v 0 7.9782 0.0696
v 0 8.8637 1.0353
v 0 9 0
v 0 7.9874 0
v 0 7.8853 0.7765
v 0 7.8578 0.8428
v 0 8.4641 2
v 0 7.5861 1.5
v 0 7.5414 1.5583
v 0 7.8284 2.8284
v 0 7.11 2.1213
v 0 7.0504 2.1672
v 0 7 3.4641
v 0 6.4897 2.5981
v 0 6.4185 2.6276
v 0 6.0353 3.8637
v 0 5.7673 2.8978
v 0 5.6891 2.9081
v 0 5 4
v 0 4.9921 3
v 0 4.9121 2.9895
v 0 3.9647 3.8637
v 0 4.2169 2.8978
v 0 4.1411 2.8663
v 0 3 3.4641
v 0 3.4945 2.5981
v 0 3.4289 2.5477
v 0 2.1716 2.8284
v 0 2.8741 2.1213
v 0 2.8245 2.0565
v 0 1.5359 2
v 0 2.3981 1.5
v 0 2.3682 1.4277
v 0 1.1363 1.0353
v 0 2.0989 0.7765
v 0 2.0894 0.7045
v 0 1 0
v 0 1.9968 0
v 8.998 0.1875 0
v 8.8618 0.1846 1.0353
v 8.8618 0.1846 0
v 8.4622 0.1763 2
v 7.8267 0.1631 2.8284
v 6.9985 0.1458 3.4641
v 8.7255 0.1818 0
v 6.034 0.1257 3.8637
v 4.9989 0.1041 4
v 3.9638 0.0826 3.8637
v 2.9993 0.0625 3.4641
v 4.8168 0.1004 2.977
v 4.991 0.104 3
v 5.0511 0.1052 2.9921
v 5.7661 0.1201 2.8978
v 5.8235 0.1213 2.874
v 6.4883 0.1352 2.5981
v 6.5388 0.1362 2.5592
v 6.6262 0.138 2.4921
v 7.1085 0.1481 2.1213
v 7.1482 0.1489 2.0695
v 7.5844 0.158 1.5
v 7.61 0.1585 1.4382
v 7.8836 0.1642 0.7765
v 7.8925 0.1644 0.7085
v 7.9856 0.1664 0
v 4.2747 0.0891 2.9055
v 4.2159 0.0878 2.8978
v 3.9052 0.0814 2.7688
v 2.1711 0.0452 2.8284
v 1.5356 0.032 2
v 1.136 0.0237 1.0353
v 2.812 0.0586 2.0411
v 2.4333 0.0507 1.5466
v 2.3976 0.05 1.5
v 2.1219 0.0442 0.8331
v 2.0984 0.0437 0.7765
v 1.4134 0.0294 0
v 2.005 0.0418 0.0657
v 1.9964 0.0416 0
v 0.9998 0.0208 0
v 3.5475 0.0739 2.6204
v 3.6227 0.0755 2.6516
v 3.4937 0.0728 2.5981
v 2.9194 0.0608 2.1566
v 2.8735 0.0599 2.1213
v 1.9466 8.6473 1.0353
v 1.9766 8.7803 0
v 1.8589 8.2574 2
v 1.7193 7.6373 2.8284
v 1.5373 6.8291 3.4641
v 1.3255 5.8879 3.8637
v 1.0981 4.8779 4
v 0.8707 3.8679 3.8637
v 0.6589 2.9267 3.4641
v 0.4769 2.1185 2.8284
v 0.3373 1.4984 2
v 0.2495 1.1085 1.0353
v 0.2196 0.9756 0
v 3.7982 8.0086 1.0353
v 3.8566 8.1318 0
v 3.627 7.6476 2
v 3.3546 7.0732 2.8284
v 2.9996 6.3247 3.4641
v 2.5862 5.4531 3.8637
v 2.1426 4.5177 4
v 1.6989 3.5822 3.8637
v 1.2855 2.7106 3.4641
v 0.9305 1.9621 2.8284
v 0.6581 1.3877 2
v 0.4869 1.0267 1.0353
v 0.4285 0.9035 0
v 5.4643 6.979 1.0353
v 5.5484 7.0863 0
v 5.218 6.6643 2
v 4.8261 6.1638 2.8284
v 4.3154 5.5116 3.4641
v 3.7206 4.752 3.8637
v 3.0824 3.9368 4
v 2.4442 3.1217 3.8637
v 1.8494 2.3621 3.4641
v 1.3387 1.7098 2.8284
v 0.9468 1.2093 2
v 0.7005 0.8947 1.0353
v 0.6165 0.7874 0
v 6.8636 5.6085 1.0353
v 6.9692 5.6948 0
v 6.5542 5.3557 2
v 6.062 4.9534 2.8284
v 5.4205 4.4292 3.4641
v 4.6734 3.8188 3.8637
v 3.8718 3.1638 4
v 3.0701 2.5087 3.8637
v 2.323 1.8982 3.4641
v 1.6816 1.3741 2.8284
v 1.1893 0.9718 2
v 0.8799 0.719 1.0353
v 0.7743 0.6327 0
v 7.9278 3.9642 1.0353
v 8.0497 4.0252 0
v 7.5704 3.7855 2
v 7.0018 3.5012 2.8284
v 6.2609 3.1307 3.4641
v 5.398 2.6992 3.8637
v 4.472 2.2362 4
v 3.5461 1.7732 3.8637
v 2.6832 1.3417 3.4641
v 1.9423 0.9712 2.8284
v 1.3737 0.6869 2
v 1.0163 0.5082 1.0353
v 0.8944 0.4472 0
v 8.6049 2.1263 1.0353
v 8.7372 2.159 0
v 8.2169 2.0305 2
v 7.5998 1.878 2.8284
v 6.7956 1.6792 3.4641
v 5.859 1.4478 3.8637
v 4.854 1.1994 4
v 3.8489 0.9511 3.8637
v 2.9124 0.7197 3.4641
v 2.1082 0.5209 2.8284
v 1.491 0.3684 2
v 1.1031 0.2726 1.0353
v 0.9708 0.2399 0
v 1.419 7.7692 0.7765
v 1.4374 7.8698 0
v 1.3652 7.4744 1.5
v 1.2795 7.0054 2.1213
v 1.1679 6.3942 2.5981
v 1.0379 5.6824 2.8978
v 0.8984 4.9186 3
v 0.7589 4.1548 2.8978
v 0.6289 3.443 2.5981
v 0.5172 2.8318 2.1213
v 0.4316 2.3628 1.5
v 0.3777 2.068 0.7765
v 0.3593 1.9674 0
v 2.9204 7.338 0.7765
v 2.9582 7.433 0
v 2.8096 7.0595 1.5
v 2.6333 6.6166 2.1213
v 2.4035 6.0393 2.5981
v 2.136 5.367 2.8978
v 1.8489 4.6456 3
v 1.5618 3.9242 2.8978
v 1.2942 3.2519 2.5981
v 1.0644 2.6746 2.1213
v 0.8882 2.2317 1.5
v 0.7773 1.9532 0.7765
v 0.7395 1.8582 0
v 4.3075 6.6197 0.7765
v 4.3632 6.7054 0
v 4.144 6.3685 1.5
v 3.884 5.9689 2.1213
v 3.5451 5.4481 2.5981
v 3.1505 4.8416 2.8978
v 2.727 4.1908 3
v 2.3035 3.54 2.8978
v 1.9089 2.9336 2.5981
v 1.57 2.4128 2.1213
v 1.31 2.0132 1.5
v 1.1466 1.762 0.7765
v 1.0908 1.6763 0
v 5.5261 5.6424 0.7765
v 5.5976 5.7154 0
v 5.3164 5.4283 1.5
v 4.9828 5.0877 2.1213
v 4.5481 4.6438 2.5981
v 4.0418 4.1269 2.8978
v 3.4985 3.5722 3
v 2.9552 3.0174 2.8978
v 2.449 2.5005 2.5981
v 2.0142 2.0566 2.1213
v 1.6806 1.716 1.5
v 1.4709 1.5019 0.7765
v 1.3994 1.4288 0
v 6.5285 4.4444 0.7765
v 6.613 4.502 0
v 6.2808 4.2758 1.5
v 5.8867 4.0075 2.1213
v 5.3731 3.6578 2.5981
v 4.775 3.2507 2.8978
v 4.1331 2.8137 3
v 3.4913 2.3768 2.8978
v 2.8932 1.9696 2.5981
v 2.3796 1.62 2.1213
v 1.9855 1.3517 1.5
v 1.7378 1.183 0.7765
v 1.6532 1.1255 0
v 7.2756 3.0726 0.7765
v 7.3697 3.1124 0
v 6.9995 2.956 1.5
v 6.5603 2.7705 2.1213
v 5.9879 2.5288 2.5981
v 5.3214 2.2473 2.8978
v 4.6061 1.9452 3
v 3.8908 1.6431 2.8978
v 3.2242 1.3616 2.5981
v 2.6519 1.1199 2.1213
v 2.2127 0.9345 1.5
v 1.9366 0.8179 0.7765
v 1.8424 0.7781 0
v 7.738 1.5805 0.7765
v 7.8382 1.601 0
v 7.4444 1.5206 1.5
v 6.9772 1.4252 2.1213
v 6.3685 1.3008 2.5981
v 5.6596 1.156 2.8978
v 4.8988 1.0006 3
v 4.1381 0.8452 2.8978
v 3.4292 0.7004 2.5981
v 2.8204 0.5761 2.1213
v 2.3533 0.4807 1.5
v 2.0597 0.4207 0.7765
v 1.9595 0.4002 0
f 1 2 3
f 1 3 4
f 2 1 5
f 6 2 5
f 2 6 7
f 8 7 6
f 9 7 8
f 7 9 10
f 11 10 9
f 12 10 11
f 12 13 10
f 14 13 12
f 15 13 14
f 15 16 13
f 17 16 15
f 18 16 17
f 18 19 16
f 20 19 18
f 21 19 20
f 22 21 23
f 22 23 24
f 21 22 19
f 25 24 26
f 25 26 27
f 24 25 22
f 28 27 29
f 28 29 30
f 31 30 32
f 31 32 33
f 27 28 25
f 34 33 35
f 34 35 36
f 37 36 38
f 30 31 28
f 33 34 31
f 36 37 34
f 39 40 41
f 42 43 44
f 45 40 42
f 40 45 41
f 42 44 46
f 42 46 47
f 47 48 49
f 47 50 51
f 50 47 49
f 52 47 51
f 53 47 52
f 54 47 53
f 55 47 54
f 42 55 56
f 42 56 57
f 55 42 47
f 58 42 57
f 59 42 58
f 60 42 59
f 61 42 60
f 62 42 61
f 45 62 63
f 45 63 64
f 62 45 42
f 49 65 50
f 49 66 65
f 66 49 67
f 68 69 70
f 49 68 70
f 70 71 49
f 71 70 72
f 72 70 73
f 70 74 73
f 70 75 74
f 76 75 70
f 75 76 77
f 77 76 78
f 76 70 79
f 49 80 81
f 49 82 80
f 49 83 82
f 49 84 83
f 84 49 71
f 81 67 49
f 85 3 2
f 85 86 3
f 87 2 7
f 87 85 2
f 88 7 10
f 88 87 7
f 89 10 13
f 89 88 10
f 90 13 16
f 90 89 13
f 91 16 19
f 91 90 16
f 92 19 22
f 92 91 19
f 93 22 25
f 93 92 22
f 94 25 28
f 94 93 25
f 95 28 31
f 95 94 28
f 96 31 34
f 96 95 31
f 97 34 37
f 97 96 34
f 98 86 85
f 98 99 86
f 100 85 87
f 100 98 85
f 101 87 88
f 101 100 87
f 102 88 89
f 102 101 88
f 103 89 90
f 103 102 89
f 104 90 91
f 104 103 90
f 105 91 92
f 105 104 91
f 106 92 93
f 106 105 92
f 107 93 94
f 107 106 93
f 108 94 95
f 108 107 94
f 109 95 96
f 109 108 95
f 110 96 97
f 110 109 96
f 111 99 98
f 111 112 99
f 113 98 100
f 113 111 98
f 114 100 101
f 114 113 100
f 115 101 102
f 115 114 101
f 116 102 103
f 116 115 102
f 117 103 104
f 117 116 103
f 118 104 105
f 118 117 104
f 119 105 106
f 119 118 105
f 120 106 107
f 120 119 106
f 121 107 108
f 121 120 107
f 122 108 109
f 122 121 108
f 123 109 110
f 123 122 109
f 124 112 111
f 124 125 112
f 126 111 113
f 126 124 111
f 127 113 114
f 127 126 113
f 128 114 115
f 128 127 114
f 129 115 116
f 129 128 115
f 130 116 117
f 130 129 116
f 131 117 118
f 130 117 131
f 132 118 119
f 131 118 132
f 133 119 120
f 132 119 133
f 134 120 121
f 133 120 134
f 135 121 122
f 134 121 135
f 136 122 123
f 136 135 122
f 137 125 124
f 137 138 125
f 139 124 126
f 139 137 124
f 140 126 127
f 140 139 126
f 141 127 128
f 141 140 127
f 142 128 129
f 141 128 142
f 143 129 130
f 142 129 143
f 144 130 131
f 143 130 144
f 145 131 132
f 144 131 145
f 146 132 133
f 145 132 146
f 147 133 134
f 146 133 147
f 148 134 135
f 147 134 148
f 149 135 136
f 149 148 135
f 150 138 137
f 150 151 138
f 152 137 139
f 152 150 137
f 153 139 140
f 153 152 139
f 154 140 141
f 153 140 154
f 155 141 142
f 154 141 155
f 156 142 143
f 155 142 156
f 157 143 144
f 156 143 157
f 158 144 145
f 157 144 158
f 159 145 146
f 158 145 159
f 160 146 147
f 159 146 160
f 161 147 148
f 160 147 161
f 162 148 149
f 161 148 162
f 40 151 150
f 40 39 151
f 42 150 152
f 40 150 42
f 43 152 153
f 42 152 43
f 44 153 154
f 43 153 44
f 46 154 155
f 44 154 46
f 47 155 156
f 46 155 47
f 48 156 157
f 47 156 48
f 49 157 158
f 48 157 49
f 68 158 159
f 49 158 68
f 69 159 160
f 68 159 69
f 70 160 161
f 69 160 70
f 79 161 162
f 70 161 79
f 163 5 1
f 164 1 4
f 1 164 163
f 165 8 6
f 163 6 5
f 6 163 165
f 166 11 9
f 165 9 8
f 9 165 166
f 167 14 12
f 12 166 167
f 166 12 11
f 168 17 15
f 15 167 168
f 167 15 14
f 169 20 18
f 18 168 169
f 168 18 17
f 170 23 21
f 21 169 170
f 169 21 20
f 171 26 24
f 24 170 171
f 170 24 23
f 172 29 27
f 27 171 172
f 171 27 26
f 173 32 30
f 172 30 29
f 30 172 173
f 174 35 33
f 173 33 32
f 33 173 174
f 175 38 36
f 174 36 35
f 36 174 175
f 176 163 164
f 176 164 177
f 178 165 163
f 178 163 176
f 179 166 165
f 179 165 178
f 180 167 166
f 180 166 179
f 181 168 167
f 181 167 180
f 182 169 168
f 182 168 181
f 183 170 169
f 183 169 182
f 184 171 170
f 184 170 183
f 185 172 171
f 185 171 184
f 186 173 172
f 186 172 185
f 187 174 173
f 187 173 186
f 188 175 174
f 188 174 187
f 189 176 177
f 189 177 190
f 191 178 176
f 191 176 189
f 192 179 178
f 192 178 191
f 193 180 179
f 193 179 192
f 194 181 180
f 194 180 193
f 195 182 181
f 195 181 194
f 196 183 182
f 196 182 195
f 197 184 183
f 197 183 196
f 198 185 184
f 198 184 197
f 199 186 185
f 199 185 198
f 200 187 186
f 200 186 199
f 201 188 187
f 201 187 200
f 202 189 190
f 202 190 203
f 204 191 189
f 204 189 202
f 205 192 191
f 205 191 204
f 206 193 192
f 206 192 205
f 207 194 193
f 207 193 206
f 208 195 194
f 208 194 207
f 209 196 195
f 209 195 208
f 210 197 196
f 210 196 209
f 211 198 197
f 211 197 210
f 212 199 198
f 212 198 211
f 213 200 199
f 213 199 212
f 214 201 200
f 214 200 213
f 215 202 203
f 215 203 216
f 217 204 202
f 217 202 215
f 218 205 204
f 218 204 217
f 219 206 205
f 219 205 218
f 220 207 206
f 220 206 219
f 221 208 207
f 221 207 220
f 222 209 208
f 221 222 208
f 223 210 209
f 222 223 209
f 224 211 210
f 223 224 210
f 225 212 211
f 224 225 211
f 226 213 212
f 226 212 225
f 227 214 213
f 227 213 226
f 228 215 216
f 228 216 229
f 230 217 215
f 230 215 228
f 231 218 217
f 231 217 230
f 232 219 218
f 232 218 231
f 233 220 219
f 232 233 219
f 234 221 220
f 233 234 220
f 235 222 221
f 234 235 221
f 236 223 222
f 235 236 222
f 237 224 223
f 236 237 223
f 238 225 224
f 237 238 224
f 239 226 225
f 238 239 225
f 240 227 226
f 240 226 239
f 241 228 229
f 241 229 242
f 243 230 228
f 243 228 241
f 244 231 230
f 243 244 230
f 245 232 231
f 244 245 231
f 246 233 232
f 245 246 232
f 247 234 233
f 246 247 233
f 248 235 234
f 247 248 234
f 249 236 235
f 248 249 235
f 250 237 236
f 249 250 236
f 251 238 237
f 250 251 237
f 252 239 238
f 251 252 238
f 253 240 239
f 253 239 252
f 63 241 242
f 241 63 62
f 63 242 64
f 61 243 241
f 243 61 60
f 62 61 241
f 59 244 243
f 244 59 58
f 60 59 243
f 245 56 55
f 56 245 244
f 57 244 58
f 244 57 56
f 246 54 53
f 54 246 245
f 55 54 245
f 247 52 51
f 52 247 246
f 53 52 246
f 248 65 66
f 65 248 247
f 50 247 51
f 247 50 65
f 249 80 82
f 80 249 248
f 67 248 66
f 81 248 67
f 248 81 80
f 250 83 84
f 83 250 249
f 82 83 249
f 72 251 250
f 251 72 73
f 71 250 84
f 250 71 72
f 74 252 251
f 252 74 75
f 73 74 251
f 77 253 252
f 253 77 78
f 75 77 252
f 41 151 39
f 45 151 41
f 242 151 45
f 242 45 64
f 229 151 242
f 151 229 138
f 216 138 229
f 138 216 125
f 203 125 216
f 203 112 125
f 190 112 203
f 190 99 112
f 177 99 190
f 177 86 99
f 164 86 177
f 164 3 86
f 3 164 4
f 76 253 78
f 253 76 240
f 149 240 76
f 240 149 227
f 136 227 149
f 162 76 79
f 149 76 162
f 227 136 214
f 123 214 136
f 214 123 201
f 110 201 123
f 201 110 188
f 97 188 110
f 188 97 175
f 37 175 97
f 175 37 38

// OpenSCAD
// file: ../build_environments.scad
// build_environments.scad: modules to build level sections
//

module pool(diameter=10.0, wall_height=2.0, step_width=3.0, connections=[])
{
    difference() {
        union() {
        difference() {
            cylinder(h=0.5,r1=diameter+step_width,r2=diameter+step_width,$fn=48);
            translate([0,0,-0.1])
                cylinder(h=0.7,r1=diameter,r2=diameter,$fn=48);
        }
        difference() {
            cylinder(h=wall_height,r1=diameter+step_width+1.0,r2=diameter+step_width+1.0,$fn=48);
            translate([0,0,-0.1])
                cylinder(h=wall_height+0.2,r1=diameter+step_width,r2=diameter+step_width,$fn=48);
        }
        }
    
        for (c = connections)
        {
            rotate([0,90,0]) {
                angle = atan2(c[1],c[0]);
                rotate([-angle,0,0]) {
                    cylinder(h=diameter+5.0,r1=c[2],r2=c[2],$fn=48);
                }
            }
        }
    }
}

module straight(length=10.0, width=2.0, dy1=0.0, dy2=0.0, dz=0.0)
{
    dims = [0, 0, 0, 0, 0, (dz/length)];
    matrix = [
        [ 1, dims[0], dims[1], 0 ],
        [ dims[2], 1, dims[4], 0 ],
        [ dims[5], dims[3], 1, 0 ],
        [ 0, 0, 0, 1 ]
    ];
    multmatrix(matrix)
    difference() {
        translate([dy1,0,0])
        union() {
            rotate([0,90,0]) {
                difference() {
                    cylinder(h=(length-dy1-dy2),r1=width+1.0,r2=width+1.0,$fn=24);
                    translate([0,0,-0.1])
                        cylinder(h=(length-dy1-dy2+0.2),r1=width,r2=width,$fn=24);
                }
                difference() {
                    cylinder(h=1.0,r1=width+2.0,r2=width+2.0,$fn=24);
                    translate([0,0,-0.1])
                        cylinder(h=1.2,r1=width,r2=width,$fn=24);
                }
                translate([0,0,(length-dy1-dy2)-1.0]) {
                    difference() {
                        cylinder(h=1.0,r1=width+2.0,r2=width+2.0,$fn=24);
                        translate([0,0,-0.1])
                            cylinder(h=1.2,r1=width,r2=width,$fn=24);
                    }
                }
            }
        }
        translate([0,0,-(2*width+4.0)/2])
            cube([3*length,3*length,2*width+4.0],center=true);
    }
}

module curve(p0=[0,0], center=[0,0], dir=1, angle=0.0, width=2.0)
{
    radius = sqrt((p0[0]-center[0])*(p0[0]-center[0]) + (p0[1]-center[1])*(p0[1]-center[1]));
    if (dir == 0) {
        difference() {
            rotate([0,0,-90])
            difference() {
                rotate_extrude(angle = angle, convexity = 10, $fn=32)
                    translate([radius, 0, 0])
                        circle(r = width+1.0,$fn=24);
                rotate([0,0,-1.0])
                    rotate_extrude(angle = angle+2.0, convexity = 10, $fn=32)
                        translate([radius, 0, 0])
                            circle(r = width,$fn=24);
            }
            translate([0,0,-(2*width+4.0)/2])
                cube([5*radius,5*radius,2*width+4.0],center=true);
        }
    }
    else {
        difference() {
            rotate([0,0,90])
            difference() {
                rotate_extrude(angle = -angle, convexity = 10, $fn=32)
                    translate([radius, 0, 0])
                        circle(r = width+1.0,$fn=24);
                rotate([0,0,1.0])
                    rotate_extrude(angle = -angle-2.0, convexity = 10, $fn=32)
                        translate([radius, 0, 0])
                            circle(r = width,$fn=24);
            }
            translate([0,0,-(2*width+4.0)/2])
                cube([5*radius,5*radius,2*width+4.0],center=true);
        }
    }

}

// test pool
//pool(diameter=12.0000, wall_height=3.0000, step_width=3.0000, connections=[[0.0000,-26.0000,2.0000], [23.6074,0.0000,2.0000]]);

// test straight, slope
//straight(length=26.0000, width=2.0000, dy1=11.8322, dy2=6.7082, dz=0.0000);
//straight(length=29.1549, width=12.0000, dy1=0.0000, dy2=0.0000, dz=-15.0000);

// test curve
//curve(p0=[23.6074, 0.0000], center=[23.6074, 5.0000], dir=0, angle=60.1011, width=2.0000);
//curve(p0=[33.6426, 12.4219], center=[37.9771, 9.9295], dir=1, angle=120.4627, width=2.0000);
// main file
use <../build_environments.scad>;
curve(p0=[-147.1041, 108.2730], center=[-147.0000, 113.2719], dir=1, angle=88.8065, width=3.0000);
